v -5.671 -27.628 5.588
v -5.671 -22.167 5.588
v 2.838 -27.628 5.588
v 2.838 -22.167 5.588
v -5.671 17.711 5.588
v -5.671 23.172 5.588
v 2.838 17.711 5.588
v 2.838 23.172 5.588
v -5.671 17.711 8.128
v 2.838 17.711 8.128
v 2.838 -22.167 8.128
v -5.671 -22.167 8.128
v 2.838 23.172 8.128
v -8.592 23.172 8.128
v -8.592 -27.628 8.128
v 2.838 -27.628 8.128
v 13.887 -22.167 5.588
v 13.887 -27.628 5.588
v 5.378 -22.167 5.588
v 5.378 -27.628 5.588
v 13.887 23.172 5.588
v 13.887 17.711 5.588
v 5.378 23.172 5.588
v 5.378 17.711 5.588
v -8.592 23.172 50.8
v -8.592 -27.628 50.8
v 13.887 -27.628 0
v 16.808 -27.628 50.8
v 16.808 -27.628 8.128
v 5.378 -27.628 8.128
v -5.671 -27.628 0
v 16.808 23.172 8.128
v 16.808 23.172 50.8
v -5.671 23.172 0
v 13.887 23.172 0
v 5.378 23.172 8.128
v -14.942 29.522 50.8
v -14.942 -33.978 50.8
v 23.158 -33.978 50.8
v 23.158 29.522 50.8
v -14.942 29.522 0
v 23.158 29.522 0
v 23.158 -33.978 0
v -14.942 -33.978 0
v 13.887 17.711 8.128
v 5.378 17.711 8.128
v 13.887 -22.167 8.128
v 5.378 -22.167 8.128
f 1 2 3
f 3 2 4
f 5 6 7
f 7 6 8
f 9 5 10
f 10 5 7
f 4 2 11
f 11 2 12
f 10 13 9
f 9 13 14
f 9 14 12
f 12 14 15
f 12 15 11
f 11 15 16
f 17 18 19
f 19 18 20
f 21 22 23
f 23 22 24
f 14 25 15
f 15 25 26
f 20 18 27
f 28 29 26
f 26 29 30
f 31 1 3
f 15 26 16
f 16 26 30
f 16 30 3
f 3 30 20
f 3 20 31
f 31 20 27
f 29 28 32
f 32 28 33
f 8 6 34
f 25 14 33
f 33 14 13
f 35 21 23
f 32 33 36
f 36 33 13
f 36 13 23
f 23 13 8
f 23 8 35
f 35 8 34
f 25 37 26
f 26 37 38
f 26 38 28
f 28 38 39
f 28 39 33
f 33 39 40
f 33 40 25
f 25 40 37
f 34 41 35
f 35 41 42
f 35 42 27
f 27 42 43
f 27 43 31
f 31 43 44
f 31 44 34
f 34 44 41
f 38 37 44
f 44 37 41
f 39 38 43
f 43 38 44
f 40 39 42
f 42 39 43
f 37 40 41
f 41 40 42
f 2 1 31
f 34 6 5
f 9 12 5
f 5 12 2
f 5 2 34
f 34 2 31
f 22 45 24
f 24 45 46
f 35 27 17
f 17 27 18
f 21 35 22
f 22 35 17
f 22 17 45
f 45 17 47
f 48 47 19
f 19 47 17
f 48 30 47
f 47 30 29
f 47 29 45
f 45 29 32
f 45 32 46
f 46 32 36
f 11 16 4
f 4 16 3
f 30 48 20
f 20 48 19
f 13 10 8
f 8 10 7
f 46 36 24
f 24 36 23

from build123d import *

# Parameters (mm, degrees)
SKETCH1_W           = 38.1
SKETCH1_H           = 63.5
SKETCH1_W_2         = 25.4
SKETCH1_H_2         = 50.8
BOSS_EXTRUDE1_DEPTH = 50.8
SKETCH4_W           = 25.4
SKETCH4_H           = 5.461
SKETCH4_W_2         = 2.921
SKETCH4_H_2         = 39.878
BOSS_EXTRUDE2_DEPTH = 2.54
SKETCH5_W           = 2.921
SKETCH5_H           = 50.8
BOSS_EXTRUDE3_DEPTH = 5.588
SKETCH6_W           = 2.54
SKETCH6_H           = 5.461
CUT_EXTRUDE1_DEPTH  = 2.54


with BuildPart() as part:
    # Sketch1 → Boss-Extrude1 (new body)
    with BuildSketch(Plane.XY):
        with Locations((4.108271787, -2.227658789)):
            Rectangle(SKETCH1_W, SKETCH1_H)
        with Locations((4.108271787, -2.227658789)):
            Rectangle(SKETCH1_W_2, SKETCH1_H_2, mode=Mode.SUBTRACT)
    extrude(amount=BOSS_EXTRUDE1_DEPTH)

    # Sketch4 → Boss-Extrude2 (add)
    with BuildSketch(Plane(origin=(0, 0, 5.588), x_dir=(-1, 0, 0), z_dir=(0, 0, -1))):
        with Locations((-4.108271787, 20.441841211)):
            Rectangle(SKETCH4_W, SKETCH4_H)
        with Locations((-15.347771787, -2.227658789)):
            Rectangle(SKETCH4_W_2, SKETCH4_H_2)
        with Locations((-4.108271787, -24.897158789)):
            Rectangle(SKETCH4_W, SKETCH4_H)
        with Locations((7.131228213, -2.227658789)):
            Rectangle(SKETCH4_W_2, SKETCH4_H_2)
    extrude(amount=-BOSS_EXTRUDE2_DEPTH)

    # Sketch5 → Boss-Extrude3 (add)
    with BuildSketch(Plane(origin=(0, 0, 5.588), x_dir=(-1, 0, 0), z_dir=(0, 0, -1))):
        with Locations((-15.347771787, -2.227658789)):
            Rectangle(SKETCH5_W, SKETCH5_H)
        with Locations((7.131228213, -2.227658789)):
            Rectangle(SKETCH5_W, SKETCH5_H)
    extrude(amount=BOSS_EXTRUDE3_DEPTH)

    # Sketch6 → Cut-Extrude1 (cut)
    with BuildSketch(Plane(origin=(0, 0, 5.588), x_dir=(-1, 0, 0), z_dir=(0, 0, -1))):
        with Locations((-4.108271787, 20.441841211)):
            Rectangle(SKETCH6_W, SKETCH6_H)
        with Locations((-4.108271787, -24.897158789)):
            Rectangle(SKETCH6_W, SKETCH6_H)
    extrude(amount=-CUT_EXTRUDE1_DEPTH, mode=Mode.SUBTRACT)


solid = part.part
